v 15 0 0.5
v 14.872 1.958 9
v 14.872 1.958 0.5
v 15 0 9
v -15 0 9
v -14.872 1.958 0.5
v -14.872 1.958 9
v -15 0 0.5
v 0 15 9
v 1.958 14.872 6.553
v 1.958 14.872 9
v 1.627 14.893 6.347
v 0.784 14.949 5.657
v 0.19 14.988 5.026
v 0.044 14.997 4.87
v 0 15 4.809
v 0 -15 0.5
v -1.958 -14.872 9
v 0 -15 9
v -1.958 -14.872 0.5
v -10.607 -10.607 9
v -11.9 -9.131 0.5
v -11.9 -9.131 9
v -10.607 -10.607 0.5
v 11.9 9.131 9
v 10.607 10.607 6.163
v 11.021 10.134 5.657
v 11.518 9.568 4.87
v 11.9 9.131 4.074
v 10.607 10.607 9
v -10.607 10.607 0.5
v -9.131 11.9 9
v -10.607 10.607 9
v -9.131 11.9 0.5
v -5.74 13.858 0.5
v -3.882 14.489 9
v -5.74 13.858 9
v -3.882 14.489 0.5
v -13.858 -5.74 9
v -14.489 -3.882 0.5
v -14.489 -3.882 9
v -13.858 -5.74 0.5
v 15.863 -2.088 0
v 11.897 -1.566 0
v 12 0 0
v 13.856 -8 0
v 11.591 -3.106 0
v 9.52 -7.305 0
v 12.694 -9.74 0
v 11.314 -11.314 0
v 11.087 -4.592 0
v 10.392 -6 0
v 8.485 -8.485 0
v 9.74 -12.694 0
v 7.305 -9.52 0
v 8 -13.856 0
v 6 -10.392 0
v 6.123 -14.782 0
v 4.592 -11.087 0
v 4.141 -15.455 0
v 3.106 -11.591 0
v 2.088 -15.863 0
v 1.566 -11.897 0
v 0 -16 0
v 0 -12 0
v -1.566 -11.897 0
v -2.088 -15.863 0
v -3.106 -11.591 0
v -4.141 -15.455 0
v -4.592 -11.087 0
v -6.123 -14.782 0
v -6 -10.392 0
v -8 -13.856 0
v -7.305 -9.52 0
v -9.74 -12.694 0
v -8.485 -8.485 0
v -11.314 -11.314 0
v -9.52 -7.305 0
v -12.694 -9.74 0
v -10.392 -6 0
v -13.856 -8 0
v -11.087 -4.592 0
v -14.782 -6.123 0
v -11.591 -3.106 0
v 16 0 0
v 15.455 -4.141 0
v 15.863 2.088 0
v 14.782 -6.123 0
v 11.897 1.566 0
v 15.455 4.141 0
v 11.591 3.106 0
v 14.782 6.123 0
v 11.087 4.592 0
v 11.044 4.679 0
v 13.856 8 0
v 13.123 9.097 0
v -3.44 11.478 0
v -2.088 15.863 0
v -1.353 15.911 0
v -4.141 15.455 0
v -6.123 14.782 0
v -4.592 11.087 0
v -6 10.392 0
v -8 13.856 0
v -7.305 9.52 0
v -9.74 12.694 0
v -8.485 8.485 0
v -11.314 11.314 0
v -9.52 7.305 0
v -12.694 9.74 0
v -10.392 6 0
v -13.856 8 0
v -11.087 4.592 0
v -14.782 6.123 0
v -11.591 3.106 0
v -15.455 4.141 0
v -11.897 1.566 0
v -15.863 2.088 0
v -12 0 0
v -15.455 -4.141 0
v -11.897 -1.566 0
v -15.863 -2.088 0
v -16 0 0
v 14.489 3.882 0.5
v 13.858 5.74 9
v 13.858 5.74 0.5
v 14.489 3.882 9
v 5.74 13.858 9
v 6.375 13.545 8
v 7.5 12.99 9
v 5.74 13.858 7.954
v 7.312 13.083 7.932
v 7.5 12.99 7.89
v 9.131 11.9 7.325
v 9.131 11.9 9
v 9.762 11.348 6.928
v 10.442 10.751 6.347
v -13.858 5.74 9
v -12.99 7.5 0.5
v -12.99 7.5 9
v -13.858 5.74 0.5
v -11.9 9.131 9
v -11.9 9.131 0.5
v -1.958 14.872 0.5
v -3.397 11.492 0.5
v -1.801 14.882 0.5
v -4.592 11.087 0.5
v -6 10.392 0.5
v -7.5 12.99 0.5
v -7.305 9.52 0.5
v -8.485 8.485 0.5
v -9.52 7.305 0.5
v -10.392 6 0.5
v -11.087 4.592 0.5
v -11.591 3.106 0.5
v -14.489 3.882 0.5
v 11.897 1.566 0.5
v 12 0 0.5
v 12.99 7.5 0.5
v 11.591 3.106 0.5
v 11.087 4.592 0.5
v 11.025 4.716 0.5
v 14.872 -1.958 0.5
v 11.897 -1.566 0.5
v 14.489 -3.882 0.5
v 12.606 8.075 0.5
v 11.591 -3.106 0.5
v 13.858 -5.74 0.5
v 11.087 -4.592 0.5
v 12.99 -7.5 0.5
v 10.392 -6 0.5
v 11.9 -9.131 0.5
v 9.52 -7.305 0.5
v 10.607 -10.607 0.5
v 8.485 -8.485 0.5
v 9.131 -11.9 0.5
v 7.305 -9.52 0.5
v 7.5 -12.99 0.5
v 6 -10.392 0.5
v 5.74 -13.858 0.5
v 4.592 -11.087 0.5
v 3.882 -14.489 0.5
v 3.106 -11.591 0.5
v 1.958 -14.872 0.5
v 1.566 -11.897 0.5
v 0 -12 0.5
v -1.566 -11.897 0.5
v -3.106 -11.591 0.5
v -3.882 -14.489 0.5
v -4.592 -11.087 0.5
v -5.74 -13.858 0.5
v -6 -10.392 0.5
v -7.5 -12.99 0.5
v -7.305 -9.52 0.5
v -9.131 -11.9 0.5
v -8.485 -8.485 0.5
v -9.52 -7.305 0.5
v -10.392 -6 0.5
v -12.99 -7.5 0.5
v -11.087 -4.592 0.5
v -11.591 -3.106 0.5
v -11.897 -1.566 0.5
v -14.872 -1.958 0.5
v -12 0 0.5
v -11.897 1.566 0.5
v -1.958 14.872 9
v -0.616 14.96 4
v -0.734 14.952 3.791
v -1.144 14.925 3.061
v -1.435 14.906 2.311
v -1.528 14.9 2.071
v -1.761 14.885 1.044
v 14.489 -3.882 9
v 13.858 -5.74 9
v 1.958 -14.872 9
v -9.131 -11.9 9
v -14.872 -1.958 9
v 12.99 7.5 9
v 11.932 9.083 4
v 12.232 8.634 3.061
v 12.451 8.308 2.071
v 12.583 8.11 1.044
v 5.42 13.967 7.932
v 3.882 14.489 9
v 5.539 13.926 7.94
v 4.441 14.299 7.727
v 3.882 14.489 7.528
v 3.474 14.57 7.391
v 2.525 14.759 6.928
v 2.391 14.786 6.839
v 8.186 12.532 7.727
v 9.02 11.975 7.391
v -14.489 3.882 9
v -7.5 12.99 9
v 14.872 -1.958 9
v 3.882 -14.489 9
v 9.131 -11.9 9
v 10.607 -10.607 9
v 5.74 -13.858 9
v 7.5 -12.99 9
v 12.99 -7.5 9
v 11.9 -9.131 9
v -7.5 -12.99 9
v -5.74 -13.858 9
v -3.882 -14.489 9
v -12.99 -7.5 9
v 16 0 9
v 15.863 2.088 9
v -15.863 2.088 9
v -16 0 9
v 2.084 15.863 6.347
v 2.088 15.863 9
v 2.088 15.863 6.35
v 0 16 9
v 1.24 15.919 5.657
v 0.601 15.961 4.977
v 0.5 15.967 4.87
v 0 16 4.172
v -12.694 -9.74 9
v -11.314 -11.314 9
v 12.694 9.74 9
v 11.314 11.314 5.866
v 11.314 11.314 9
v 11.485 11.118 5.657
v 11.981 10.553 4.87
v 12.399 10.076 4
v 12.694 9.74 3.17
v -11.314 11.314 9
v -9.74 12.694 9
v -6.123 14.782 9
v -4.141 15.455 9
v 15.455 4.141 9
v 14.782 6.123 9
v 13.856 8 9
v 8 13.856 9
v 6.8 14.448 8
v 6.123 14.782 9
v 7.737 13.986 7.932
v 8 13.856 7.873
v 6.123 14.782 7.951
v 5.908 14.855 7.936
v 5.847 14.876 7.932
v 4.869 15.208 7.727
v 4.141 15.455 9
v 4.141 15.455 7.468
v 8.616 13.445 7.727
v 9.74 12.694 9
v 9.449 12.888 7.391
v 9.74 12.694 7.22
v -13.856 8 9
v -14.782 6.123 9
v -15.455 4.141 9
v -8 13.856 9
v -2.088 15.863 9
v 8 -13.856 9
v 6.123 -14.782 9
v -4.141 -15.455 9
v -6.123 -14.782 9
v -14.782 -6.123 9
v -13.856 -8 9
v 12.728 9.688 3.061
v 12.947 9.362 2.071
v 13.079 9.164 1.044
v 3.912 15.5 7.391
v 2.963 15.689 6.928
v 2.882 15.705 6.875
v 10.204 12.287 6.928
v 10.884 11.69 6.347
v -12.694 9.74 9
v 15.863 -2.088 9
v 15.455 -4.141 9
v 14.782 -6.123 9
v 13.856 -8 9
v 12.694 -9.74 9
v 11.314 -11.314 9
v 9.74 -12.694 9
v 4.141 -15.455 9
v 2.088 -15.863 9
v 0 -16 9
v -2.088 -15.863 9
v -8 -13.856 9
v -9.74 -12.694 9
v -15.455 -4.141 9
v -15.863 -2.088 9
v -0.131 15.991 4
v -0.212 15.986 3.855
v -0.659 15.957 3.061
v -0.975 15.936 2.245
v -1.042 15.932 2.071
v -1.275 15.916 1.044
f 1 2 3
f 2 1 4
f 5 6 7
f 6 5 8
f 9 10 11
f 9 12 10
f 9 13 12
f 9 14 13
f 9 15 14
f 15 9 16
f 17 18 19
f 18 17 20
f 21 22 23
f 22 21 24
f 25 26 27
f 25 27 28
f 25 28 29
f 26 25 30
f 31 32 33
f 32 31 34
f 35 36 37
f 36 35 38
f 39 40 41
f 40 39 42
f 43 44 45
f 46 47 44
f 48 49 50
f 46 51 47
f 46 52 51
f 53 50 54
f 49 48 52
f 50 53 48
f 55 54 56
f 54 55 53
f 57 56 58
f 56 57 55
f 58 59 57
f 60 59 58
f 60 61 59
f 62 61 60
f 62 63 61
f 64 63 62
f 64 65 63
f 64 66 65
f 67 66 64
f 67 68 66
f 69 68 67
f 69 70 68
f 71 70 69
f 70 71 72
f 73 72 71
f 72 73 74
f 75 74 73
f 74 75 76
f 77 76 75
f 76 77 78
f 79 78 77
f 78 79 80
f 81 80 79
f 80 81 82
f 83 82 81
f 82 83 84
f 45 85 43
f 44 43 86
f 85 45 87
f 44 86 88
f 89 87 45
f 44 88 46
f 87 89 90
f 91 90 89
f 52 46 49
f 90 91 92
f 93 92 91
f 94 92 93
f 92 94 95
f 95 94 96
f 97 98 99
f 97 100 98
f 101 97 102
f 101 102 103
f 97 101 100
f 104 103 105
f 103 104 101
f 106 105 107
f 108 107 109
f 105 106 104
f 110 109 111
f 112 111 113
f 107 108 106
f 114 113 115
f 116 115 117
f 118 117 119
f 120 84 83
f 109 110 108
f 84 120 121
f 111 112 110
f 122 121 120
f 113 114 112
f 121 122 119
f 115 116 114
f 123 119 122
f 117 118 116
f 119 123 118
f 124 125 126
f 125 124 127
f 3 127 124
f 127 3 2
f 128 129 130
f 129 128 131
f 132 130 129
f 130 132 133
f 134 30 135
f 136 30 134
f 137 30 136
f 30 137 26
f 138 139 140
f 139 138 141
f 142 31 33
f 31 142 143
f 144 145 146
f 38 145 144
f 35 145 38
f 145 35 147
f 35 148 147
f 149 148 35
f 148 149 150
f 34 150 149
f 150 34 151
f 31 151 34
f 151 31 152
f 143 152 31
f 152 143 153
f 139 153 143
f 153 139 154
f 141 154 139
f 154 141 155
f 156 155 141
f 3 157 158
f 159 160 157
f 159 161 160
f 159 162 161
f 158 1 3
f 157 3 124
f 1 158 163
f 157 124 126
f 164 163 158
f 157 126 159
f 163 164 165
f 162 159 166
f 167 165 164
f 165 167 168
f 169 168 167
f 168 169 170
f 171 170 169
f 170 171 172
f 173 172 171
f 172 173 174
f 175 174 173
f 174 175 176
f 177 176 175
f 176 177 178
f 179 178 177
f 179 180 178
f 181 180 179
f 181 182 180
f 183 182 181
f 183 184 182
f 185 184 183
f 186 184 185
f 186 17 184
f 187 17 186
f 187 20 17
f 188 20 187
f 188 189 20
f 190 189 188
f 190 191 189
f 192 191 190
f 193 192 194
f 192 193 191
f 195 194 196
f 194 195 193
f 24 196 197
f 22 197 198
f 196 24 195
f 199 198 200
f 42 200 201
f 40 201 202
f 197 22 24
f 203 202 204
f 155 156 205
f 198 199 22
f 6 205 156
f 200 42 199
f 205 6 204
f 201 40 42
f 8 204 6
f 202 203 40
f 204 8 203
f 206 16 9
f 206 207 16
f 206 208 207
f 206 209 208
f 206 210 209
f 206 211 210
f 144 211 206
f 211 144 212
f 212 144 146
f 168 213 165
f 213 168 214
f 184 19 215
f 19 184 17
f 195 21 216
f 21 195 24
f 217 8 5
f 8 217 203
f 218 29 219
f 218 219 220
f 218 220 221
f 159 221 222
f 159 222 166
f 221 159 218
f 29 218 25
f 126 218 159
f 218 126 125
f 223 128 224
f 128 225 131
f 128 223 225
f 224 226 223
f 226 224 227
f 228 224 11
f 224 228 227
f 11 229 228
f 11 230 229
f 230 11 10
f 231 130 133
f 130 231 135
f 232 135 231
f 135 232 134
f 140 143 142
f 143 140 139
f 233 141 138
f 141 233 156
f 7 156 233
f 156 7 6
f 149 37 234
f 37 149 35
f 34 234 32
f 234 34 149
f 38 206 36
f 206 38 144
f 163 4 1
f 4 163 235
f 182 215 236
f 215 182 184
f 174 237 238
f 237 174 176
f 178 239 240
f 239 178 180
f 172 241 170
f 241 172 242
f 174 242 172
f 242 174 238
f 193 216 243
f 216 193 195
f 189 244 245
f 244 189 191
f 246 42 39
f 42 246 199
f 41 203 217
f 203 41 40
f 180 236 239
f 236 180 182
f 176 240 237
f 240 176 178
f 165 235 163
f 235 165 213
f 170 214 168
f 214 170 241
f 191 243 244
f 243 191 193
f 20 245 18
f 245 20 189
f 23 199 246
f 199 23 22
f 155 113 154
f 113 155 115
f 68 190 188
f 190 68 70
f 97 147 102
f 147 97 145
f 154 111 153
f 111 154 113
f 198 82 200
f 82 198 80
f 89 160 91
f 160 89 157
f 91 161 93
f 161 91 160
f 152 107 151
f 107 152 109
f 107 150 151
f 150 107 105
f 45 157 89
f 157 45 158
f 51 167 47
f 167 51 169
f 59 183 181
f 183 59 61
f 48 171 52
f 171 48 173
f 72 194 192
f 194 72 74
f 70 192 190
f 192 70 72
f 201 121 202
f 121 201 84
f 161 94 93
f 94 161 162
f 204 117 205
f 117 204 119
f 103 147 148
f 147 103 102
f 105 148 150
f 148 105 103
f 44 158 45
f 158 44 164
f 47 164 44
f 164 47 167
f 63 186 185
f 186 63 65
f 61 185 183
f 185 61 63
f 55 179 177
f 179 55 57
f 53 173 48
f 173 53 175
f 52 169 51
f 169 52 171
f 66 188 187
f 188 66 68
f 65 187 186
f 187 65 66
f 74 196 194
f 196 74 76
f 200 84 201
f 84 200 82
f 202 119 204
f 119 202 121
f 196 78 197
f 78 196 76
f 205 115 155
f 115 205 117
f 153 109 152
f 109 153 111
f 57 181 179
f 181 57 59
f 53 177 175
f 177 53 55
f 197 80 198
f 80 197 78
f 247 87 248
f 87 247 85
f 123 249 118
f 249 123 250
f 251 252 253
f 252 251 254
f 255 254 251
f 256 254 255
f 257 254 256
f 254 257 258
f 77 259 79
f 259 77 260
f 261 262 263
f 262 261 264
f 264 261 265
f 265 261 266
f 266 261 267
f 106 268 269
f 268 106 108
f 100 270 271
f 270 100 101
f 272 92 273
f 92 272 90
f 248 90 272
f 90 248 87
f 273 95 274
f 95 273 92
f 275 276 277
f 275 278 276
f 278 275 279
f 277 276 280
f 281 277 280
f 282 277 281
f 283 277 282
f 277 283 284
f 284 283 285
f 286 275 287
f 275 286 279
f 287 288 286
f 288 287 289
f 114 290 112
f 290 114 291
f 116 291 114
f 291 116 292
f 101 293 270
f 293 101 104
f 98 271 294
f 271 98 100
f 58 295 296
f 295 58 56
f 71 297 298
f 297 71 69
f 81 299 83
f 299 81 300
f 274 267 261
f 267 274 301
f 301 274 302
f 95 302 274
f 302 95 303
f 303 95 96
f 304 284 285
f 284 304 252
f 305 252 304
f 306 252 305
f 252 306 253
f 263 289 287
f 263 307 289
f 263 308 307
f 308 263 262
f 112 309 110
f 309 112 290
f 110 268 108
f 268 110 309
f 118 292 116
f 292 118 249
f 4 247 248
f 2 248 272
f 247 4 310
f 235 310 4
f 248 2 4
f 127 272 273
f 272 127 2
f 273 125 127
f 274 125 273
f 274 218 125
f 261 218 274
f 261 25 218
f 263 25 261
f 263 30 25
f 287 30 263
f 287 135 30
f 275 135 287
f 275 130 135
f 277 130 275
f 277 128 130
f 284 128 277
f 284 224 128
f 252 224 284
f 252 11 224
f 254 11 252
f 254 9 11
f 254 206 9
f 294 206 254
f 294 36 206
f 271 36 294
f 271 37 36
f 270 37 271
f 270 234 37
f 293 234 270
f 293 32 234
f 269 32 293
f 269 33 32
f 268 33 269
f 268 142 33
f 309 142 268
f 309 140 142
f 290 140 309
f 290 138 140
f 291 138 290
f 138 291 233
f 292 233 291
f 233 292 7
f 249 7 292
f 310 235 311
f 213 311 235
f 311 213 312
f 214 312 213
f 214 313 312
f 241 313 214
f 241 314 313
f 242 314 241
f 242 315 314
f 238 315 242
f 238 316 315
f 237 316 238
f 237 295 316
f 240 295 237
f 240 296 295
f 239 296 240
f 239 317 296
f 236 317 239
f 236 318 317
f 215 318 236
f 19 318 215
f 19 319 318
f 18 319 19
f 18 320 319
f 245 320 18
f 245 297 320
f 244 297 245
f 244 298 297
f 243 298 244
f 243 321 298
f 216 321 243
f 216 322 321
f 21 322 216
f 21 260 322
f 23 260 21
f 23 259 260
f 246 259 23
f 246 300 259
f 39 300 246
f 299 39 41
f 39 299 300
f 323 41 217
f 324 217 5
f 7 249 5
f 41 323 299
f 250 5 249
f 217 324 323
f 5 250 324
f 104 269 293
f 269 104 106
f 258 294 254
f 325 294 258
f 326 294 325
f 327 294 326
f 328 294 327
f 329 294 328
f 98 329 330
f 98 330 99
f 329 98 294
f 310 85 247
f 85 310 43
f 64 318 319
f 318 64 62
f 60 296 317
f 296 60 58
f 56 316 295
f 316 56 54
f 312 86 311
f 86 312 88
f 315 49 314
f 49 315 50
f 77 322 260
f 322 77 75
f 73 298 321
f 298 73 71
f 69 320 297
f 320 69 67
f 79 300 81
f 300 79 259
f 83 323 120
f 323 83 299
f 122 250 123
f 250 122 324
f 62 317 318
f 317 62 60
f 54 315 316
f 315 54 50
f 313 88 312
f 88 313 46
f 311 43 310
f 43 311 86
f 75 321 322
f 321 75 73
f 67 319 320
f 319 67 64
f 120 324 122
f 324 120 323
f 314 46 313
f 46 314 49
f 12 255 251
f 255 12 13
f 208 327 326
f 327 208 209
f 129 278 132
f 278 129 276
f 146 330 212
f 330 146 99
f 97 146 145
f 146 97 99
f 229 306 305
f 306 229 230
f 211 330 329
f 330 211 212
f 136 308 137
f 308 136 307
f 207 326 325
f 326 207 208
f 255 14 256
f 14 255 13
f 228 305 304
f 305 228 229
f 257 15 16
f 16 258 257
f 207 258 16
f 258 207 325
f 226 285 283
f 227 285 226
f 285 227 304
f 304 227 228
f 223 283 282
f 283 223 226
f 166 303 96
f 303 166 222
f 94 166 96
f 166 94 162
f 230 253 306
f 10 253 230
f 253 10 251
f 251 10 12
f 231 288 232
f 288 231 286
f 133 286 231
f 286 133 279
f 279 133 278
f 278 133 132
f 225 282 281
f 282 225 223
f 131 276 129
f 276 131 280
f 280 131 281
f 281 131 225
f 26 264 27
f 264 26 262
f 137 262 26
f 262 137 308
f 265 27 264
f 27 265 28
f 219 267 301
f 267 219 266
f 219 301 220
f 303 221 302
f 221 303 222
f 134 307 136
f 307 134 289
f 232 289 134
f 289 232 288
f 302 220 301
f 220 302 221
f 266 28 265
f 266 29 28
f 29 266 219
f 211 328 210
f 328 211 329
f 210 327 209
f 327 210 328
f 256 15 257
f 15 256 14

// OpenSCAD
// file: ../build_environments.scad
// build_environments.scad: modules to build level sections
//

module pool(diameter=10.0, wall_height=2.0, step_width=3.0, connections=[])
{
    difference() {
        union() {
        difference() {
            cylinder(h=0.5,r1=diameter+step_width,r2=diameter+step_width,$fn=48);
            translate([0,0,-0.1])
                cylinder(h=0.7,r1=diameter,r2=diameter,$fn=48);
        }
        difference() {
            cylinder(h=wall_height,r1=diameter+step_width+1.0,r2=diameter+step_width+1.0,$fn=48);
            translate([0,0,-0.1])
                cylinder(h=wall_height+0.2,r1=diameter+step_width,r2=diameter+step_width,$fn=48);
        }
        }
    
        for (c = connections)
        {
            rotate([0,90,0]) {
                angle = atan2(c[1],c[0]);
                rotate([-angle,0,0]) {
                    cylinder(h=diameter+5.0,r1=c[2],r2=c[2],$fn=48);
                }
            }
        }
    }
}

module straight(length=10.0, width=2.0, dy1=0.0, dy2=0.0, dz=0.0)
{
    dims = [0, 0, 0, 0, 0, (dz/length)];
    matrix = [
        [ 1, dims[0], dims[1], 0 ],
        [ dims[2], 1, dims[4], 0 ],
        [ dims[5], dims[3], 1, 0 ],
        [ 0, 0, 0, 1 ]
    ];
    multmatrix(matrix)
    difference() {
        translate([dy1,0,0])
        union() {
            rotate([0,90,0]) {
                difference() {
                    cylinder(h=(length-dy1-dy2),r1=width+1.0,r2=width+1.0,$fn=24);
                    translate([0,0,-0.1])
                        cylinder(h=(length-dy1-dy2+0.2),r1=width,r2=width,$fn=24);
                }
                difference() {
                    cylinder(h=1.0,r1=width+2.0,r2=width+2.0,$fn=24);
                    translate([0,0,-0.1])
                        cylinder(h=1.2,r1=width,r2=width,$fn=24);
                }
                translate([0,0,(length-dy1-dy2)-1.0]) {
                    difference() {
                        cylinder(h=1.0,r1=width+2.0,r2=width+2.0,$fn=24);
                        translate([0,0,-0.1])
                            cylinder(h=1.2,r1=width,r2=width,$fn=24);
                    }
                }
            }
        }
        translate([0,0,-(2*width+4.0)/2])
            cube([3*length,3*length,2*width+4.0],center=true);
    }
}

module curve(p0=[0,0], center=[0,0], dir=1, angle=0.0, width=2.0)
{
    radius = sqrt((p0[0]-center[0])*(p0[0]-center[0]) + (p0[1]-center[1])*(p0[1]-center[1]));
    if (dir == 0) {
        difference() {
            rotate([0,0,-90])
            difference() {
                rotate_extrude(angle = angle, convexity = 10, $fn=32)
                    translate([radius, 0, 0])
                        circle(r = width+1.0,$fn=24);
                rotate([0,0,-1.0])
                    rotate_extrude(angle = angle+2.0, convexity = 10, $fn=32)
                        translate([radius, 0, 0])
                            circle(r = width,$fn=24);
            }
            translate([0,0,-(2*width+4.0)/2])
                cube([5*radius,5*radius,2*width+4.0],center=true);
        }
    }
    else {
        difference() {
            rotate([0,0,90])
            difference() {
                rotate_extrude(angle = -angle, convexity = 10, $fn=32)
                    translate([radius, 0, 0])
                        circle(r = width+1.0,$fn=24);
                rotate([0,0,1.0])
                    rotate_extrude(angle = -angle-2.0, convexity = 10, $fn=32)
                        translate([radius, 0, 0])
                            circle(r = width,$fn=24);
            }
            translate([0,0,-(2*width+4.0)/2])
                cube([5*radius,5*radius,2*width+4.0],center=true);
        }
    }

}

// test pool
//pool(diameter=12.0000, wall_height=3.0000, step_width=3.0000, connections=[[0.0000,-26.0000,2.0000], [23.6074,0.0000,2.0000]]);

// test straight, slope
//straight(length=26.0000, width=2.0000, dy1=11.8322, dy2=6.7082, dz=0.0000);
//straight(length=29.1549, width=12.0000, dy1=0.0000, dy2=0.0000, dz=-15.0000);

// test curve
//curve(p0=[23.6074, 0.0000], center=[23.6074, 5.0000], dir=0, angle=60.1011, width=2.0000);
//curve(p0=[33.6426, 12.4219], center=[37.9771, 9.9295], dir=1, angle=120.4627, width=2.0000);
// main file
use <../build_environments.scad>;
pool(diameter=12.0000, wall_height=9.0000, step_width=3.0000, connections=[[17.3269,36.8147,8.0000]]);
